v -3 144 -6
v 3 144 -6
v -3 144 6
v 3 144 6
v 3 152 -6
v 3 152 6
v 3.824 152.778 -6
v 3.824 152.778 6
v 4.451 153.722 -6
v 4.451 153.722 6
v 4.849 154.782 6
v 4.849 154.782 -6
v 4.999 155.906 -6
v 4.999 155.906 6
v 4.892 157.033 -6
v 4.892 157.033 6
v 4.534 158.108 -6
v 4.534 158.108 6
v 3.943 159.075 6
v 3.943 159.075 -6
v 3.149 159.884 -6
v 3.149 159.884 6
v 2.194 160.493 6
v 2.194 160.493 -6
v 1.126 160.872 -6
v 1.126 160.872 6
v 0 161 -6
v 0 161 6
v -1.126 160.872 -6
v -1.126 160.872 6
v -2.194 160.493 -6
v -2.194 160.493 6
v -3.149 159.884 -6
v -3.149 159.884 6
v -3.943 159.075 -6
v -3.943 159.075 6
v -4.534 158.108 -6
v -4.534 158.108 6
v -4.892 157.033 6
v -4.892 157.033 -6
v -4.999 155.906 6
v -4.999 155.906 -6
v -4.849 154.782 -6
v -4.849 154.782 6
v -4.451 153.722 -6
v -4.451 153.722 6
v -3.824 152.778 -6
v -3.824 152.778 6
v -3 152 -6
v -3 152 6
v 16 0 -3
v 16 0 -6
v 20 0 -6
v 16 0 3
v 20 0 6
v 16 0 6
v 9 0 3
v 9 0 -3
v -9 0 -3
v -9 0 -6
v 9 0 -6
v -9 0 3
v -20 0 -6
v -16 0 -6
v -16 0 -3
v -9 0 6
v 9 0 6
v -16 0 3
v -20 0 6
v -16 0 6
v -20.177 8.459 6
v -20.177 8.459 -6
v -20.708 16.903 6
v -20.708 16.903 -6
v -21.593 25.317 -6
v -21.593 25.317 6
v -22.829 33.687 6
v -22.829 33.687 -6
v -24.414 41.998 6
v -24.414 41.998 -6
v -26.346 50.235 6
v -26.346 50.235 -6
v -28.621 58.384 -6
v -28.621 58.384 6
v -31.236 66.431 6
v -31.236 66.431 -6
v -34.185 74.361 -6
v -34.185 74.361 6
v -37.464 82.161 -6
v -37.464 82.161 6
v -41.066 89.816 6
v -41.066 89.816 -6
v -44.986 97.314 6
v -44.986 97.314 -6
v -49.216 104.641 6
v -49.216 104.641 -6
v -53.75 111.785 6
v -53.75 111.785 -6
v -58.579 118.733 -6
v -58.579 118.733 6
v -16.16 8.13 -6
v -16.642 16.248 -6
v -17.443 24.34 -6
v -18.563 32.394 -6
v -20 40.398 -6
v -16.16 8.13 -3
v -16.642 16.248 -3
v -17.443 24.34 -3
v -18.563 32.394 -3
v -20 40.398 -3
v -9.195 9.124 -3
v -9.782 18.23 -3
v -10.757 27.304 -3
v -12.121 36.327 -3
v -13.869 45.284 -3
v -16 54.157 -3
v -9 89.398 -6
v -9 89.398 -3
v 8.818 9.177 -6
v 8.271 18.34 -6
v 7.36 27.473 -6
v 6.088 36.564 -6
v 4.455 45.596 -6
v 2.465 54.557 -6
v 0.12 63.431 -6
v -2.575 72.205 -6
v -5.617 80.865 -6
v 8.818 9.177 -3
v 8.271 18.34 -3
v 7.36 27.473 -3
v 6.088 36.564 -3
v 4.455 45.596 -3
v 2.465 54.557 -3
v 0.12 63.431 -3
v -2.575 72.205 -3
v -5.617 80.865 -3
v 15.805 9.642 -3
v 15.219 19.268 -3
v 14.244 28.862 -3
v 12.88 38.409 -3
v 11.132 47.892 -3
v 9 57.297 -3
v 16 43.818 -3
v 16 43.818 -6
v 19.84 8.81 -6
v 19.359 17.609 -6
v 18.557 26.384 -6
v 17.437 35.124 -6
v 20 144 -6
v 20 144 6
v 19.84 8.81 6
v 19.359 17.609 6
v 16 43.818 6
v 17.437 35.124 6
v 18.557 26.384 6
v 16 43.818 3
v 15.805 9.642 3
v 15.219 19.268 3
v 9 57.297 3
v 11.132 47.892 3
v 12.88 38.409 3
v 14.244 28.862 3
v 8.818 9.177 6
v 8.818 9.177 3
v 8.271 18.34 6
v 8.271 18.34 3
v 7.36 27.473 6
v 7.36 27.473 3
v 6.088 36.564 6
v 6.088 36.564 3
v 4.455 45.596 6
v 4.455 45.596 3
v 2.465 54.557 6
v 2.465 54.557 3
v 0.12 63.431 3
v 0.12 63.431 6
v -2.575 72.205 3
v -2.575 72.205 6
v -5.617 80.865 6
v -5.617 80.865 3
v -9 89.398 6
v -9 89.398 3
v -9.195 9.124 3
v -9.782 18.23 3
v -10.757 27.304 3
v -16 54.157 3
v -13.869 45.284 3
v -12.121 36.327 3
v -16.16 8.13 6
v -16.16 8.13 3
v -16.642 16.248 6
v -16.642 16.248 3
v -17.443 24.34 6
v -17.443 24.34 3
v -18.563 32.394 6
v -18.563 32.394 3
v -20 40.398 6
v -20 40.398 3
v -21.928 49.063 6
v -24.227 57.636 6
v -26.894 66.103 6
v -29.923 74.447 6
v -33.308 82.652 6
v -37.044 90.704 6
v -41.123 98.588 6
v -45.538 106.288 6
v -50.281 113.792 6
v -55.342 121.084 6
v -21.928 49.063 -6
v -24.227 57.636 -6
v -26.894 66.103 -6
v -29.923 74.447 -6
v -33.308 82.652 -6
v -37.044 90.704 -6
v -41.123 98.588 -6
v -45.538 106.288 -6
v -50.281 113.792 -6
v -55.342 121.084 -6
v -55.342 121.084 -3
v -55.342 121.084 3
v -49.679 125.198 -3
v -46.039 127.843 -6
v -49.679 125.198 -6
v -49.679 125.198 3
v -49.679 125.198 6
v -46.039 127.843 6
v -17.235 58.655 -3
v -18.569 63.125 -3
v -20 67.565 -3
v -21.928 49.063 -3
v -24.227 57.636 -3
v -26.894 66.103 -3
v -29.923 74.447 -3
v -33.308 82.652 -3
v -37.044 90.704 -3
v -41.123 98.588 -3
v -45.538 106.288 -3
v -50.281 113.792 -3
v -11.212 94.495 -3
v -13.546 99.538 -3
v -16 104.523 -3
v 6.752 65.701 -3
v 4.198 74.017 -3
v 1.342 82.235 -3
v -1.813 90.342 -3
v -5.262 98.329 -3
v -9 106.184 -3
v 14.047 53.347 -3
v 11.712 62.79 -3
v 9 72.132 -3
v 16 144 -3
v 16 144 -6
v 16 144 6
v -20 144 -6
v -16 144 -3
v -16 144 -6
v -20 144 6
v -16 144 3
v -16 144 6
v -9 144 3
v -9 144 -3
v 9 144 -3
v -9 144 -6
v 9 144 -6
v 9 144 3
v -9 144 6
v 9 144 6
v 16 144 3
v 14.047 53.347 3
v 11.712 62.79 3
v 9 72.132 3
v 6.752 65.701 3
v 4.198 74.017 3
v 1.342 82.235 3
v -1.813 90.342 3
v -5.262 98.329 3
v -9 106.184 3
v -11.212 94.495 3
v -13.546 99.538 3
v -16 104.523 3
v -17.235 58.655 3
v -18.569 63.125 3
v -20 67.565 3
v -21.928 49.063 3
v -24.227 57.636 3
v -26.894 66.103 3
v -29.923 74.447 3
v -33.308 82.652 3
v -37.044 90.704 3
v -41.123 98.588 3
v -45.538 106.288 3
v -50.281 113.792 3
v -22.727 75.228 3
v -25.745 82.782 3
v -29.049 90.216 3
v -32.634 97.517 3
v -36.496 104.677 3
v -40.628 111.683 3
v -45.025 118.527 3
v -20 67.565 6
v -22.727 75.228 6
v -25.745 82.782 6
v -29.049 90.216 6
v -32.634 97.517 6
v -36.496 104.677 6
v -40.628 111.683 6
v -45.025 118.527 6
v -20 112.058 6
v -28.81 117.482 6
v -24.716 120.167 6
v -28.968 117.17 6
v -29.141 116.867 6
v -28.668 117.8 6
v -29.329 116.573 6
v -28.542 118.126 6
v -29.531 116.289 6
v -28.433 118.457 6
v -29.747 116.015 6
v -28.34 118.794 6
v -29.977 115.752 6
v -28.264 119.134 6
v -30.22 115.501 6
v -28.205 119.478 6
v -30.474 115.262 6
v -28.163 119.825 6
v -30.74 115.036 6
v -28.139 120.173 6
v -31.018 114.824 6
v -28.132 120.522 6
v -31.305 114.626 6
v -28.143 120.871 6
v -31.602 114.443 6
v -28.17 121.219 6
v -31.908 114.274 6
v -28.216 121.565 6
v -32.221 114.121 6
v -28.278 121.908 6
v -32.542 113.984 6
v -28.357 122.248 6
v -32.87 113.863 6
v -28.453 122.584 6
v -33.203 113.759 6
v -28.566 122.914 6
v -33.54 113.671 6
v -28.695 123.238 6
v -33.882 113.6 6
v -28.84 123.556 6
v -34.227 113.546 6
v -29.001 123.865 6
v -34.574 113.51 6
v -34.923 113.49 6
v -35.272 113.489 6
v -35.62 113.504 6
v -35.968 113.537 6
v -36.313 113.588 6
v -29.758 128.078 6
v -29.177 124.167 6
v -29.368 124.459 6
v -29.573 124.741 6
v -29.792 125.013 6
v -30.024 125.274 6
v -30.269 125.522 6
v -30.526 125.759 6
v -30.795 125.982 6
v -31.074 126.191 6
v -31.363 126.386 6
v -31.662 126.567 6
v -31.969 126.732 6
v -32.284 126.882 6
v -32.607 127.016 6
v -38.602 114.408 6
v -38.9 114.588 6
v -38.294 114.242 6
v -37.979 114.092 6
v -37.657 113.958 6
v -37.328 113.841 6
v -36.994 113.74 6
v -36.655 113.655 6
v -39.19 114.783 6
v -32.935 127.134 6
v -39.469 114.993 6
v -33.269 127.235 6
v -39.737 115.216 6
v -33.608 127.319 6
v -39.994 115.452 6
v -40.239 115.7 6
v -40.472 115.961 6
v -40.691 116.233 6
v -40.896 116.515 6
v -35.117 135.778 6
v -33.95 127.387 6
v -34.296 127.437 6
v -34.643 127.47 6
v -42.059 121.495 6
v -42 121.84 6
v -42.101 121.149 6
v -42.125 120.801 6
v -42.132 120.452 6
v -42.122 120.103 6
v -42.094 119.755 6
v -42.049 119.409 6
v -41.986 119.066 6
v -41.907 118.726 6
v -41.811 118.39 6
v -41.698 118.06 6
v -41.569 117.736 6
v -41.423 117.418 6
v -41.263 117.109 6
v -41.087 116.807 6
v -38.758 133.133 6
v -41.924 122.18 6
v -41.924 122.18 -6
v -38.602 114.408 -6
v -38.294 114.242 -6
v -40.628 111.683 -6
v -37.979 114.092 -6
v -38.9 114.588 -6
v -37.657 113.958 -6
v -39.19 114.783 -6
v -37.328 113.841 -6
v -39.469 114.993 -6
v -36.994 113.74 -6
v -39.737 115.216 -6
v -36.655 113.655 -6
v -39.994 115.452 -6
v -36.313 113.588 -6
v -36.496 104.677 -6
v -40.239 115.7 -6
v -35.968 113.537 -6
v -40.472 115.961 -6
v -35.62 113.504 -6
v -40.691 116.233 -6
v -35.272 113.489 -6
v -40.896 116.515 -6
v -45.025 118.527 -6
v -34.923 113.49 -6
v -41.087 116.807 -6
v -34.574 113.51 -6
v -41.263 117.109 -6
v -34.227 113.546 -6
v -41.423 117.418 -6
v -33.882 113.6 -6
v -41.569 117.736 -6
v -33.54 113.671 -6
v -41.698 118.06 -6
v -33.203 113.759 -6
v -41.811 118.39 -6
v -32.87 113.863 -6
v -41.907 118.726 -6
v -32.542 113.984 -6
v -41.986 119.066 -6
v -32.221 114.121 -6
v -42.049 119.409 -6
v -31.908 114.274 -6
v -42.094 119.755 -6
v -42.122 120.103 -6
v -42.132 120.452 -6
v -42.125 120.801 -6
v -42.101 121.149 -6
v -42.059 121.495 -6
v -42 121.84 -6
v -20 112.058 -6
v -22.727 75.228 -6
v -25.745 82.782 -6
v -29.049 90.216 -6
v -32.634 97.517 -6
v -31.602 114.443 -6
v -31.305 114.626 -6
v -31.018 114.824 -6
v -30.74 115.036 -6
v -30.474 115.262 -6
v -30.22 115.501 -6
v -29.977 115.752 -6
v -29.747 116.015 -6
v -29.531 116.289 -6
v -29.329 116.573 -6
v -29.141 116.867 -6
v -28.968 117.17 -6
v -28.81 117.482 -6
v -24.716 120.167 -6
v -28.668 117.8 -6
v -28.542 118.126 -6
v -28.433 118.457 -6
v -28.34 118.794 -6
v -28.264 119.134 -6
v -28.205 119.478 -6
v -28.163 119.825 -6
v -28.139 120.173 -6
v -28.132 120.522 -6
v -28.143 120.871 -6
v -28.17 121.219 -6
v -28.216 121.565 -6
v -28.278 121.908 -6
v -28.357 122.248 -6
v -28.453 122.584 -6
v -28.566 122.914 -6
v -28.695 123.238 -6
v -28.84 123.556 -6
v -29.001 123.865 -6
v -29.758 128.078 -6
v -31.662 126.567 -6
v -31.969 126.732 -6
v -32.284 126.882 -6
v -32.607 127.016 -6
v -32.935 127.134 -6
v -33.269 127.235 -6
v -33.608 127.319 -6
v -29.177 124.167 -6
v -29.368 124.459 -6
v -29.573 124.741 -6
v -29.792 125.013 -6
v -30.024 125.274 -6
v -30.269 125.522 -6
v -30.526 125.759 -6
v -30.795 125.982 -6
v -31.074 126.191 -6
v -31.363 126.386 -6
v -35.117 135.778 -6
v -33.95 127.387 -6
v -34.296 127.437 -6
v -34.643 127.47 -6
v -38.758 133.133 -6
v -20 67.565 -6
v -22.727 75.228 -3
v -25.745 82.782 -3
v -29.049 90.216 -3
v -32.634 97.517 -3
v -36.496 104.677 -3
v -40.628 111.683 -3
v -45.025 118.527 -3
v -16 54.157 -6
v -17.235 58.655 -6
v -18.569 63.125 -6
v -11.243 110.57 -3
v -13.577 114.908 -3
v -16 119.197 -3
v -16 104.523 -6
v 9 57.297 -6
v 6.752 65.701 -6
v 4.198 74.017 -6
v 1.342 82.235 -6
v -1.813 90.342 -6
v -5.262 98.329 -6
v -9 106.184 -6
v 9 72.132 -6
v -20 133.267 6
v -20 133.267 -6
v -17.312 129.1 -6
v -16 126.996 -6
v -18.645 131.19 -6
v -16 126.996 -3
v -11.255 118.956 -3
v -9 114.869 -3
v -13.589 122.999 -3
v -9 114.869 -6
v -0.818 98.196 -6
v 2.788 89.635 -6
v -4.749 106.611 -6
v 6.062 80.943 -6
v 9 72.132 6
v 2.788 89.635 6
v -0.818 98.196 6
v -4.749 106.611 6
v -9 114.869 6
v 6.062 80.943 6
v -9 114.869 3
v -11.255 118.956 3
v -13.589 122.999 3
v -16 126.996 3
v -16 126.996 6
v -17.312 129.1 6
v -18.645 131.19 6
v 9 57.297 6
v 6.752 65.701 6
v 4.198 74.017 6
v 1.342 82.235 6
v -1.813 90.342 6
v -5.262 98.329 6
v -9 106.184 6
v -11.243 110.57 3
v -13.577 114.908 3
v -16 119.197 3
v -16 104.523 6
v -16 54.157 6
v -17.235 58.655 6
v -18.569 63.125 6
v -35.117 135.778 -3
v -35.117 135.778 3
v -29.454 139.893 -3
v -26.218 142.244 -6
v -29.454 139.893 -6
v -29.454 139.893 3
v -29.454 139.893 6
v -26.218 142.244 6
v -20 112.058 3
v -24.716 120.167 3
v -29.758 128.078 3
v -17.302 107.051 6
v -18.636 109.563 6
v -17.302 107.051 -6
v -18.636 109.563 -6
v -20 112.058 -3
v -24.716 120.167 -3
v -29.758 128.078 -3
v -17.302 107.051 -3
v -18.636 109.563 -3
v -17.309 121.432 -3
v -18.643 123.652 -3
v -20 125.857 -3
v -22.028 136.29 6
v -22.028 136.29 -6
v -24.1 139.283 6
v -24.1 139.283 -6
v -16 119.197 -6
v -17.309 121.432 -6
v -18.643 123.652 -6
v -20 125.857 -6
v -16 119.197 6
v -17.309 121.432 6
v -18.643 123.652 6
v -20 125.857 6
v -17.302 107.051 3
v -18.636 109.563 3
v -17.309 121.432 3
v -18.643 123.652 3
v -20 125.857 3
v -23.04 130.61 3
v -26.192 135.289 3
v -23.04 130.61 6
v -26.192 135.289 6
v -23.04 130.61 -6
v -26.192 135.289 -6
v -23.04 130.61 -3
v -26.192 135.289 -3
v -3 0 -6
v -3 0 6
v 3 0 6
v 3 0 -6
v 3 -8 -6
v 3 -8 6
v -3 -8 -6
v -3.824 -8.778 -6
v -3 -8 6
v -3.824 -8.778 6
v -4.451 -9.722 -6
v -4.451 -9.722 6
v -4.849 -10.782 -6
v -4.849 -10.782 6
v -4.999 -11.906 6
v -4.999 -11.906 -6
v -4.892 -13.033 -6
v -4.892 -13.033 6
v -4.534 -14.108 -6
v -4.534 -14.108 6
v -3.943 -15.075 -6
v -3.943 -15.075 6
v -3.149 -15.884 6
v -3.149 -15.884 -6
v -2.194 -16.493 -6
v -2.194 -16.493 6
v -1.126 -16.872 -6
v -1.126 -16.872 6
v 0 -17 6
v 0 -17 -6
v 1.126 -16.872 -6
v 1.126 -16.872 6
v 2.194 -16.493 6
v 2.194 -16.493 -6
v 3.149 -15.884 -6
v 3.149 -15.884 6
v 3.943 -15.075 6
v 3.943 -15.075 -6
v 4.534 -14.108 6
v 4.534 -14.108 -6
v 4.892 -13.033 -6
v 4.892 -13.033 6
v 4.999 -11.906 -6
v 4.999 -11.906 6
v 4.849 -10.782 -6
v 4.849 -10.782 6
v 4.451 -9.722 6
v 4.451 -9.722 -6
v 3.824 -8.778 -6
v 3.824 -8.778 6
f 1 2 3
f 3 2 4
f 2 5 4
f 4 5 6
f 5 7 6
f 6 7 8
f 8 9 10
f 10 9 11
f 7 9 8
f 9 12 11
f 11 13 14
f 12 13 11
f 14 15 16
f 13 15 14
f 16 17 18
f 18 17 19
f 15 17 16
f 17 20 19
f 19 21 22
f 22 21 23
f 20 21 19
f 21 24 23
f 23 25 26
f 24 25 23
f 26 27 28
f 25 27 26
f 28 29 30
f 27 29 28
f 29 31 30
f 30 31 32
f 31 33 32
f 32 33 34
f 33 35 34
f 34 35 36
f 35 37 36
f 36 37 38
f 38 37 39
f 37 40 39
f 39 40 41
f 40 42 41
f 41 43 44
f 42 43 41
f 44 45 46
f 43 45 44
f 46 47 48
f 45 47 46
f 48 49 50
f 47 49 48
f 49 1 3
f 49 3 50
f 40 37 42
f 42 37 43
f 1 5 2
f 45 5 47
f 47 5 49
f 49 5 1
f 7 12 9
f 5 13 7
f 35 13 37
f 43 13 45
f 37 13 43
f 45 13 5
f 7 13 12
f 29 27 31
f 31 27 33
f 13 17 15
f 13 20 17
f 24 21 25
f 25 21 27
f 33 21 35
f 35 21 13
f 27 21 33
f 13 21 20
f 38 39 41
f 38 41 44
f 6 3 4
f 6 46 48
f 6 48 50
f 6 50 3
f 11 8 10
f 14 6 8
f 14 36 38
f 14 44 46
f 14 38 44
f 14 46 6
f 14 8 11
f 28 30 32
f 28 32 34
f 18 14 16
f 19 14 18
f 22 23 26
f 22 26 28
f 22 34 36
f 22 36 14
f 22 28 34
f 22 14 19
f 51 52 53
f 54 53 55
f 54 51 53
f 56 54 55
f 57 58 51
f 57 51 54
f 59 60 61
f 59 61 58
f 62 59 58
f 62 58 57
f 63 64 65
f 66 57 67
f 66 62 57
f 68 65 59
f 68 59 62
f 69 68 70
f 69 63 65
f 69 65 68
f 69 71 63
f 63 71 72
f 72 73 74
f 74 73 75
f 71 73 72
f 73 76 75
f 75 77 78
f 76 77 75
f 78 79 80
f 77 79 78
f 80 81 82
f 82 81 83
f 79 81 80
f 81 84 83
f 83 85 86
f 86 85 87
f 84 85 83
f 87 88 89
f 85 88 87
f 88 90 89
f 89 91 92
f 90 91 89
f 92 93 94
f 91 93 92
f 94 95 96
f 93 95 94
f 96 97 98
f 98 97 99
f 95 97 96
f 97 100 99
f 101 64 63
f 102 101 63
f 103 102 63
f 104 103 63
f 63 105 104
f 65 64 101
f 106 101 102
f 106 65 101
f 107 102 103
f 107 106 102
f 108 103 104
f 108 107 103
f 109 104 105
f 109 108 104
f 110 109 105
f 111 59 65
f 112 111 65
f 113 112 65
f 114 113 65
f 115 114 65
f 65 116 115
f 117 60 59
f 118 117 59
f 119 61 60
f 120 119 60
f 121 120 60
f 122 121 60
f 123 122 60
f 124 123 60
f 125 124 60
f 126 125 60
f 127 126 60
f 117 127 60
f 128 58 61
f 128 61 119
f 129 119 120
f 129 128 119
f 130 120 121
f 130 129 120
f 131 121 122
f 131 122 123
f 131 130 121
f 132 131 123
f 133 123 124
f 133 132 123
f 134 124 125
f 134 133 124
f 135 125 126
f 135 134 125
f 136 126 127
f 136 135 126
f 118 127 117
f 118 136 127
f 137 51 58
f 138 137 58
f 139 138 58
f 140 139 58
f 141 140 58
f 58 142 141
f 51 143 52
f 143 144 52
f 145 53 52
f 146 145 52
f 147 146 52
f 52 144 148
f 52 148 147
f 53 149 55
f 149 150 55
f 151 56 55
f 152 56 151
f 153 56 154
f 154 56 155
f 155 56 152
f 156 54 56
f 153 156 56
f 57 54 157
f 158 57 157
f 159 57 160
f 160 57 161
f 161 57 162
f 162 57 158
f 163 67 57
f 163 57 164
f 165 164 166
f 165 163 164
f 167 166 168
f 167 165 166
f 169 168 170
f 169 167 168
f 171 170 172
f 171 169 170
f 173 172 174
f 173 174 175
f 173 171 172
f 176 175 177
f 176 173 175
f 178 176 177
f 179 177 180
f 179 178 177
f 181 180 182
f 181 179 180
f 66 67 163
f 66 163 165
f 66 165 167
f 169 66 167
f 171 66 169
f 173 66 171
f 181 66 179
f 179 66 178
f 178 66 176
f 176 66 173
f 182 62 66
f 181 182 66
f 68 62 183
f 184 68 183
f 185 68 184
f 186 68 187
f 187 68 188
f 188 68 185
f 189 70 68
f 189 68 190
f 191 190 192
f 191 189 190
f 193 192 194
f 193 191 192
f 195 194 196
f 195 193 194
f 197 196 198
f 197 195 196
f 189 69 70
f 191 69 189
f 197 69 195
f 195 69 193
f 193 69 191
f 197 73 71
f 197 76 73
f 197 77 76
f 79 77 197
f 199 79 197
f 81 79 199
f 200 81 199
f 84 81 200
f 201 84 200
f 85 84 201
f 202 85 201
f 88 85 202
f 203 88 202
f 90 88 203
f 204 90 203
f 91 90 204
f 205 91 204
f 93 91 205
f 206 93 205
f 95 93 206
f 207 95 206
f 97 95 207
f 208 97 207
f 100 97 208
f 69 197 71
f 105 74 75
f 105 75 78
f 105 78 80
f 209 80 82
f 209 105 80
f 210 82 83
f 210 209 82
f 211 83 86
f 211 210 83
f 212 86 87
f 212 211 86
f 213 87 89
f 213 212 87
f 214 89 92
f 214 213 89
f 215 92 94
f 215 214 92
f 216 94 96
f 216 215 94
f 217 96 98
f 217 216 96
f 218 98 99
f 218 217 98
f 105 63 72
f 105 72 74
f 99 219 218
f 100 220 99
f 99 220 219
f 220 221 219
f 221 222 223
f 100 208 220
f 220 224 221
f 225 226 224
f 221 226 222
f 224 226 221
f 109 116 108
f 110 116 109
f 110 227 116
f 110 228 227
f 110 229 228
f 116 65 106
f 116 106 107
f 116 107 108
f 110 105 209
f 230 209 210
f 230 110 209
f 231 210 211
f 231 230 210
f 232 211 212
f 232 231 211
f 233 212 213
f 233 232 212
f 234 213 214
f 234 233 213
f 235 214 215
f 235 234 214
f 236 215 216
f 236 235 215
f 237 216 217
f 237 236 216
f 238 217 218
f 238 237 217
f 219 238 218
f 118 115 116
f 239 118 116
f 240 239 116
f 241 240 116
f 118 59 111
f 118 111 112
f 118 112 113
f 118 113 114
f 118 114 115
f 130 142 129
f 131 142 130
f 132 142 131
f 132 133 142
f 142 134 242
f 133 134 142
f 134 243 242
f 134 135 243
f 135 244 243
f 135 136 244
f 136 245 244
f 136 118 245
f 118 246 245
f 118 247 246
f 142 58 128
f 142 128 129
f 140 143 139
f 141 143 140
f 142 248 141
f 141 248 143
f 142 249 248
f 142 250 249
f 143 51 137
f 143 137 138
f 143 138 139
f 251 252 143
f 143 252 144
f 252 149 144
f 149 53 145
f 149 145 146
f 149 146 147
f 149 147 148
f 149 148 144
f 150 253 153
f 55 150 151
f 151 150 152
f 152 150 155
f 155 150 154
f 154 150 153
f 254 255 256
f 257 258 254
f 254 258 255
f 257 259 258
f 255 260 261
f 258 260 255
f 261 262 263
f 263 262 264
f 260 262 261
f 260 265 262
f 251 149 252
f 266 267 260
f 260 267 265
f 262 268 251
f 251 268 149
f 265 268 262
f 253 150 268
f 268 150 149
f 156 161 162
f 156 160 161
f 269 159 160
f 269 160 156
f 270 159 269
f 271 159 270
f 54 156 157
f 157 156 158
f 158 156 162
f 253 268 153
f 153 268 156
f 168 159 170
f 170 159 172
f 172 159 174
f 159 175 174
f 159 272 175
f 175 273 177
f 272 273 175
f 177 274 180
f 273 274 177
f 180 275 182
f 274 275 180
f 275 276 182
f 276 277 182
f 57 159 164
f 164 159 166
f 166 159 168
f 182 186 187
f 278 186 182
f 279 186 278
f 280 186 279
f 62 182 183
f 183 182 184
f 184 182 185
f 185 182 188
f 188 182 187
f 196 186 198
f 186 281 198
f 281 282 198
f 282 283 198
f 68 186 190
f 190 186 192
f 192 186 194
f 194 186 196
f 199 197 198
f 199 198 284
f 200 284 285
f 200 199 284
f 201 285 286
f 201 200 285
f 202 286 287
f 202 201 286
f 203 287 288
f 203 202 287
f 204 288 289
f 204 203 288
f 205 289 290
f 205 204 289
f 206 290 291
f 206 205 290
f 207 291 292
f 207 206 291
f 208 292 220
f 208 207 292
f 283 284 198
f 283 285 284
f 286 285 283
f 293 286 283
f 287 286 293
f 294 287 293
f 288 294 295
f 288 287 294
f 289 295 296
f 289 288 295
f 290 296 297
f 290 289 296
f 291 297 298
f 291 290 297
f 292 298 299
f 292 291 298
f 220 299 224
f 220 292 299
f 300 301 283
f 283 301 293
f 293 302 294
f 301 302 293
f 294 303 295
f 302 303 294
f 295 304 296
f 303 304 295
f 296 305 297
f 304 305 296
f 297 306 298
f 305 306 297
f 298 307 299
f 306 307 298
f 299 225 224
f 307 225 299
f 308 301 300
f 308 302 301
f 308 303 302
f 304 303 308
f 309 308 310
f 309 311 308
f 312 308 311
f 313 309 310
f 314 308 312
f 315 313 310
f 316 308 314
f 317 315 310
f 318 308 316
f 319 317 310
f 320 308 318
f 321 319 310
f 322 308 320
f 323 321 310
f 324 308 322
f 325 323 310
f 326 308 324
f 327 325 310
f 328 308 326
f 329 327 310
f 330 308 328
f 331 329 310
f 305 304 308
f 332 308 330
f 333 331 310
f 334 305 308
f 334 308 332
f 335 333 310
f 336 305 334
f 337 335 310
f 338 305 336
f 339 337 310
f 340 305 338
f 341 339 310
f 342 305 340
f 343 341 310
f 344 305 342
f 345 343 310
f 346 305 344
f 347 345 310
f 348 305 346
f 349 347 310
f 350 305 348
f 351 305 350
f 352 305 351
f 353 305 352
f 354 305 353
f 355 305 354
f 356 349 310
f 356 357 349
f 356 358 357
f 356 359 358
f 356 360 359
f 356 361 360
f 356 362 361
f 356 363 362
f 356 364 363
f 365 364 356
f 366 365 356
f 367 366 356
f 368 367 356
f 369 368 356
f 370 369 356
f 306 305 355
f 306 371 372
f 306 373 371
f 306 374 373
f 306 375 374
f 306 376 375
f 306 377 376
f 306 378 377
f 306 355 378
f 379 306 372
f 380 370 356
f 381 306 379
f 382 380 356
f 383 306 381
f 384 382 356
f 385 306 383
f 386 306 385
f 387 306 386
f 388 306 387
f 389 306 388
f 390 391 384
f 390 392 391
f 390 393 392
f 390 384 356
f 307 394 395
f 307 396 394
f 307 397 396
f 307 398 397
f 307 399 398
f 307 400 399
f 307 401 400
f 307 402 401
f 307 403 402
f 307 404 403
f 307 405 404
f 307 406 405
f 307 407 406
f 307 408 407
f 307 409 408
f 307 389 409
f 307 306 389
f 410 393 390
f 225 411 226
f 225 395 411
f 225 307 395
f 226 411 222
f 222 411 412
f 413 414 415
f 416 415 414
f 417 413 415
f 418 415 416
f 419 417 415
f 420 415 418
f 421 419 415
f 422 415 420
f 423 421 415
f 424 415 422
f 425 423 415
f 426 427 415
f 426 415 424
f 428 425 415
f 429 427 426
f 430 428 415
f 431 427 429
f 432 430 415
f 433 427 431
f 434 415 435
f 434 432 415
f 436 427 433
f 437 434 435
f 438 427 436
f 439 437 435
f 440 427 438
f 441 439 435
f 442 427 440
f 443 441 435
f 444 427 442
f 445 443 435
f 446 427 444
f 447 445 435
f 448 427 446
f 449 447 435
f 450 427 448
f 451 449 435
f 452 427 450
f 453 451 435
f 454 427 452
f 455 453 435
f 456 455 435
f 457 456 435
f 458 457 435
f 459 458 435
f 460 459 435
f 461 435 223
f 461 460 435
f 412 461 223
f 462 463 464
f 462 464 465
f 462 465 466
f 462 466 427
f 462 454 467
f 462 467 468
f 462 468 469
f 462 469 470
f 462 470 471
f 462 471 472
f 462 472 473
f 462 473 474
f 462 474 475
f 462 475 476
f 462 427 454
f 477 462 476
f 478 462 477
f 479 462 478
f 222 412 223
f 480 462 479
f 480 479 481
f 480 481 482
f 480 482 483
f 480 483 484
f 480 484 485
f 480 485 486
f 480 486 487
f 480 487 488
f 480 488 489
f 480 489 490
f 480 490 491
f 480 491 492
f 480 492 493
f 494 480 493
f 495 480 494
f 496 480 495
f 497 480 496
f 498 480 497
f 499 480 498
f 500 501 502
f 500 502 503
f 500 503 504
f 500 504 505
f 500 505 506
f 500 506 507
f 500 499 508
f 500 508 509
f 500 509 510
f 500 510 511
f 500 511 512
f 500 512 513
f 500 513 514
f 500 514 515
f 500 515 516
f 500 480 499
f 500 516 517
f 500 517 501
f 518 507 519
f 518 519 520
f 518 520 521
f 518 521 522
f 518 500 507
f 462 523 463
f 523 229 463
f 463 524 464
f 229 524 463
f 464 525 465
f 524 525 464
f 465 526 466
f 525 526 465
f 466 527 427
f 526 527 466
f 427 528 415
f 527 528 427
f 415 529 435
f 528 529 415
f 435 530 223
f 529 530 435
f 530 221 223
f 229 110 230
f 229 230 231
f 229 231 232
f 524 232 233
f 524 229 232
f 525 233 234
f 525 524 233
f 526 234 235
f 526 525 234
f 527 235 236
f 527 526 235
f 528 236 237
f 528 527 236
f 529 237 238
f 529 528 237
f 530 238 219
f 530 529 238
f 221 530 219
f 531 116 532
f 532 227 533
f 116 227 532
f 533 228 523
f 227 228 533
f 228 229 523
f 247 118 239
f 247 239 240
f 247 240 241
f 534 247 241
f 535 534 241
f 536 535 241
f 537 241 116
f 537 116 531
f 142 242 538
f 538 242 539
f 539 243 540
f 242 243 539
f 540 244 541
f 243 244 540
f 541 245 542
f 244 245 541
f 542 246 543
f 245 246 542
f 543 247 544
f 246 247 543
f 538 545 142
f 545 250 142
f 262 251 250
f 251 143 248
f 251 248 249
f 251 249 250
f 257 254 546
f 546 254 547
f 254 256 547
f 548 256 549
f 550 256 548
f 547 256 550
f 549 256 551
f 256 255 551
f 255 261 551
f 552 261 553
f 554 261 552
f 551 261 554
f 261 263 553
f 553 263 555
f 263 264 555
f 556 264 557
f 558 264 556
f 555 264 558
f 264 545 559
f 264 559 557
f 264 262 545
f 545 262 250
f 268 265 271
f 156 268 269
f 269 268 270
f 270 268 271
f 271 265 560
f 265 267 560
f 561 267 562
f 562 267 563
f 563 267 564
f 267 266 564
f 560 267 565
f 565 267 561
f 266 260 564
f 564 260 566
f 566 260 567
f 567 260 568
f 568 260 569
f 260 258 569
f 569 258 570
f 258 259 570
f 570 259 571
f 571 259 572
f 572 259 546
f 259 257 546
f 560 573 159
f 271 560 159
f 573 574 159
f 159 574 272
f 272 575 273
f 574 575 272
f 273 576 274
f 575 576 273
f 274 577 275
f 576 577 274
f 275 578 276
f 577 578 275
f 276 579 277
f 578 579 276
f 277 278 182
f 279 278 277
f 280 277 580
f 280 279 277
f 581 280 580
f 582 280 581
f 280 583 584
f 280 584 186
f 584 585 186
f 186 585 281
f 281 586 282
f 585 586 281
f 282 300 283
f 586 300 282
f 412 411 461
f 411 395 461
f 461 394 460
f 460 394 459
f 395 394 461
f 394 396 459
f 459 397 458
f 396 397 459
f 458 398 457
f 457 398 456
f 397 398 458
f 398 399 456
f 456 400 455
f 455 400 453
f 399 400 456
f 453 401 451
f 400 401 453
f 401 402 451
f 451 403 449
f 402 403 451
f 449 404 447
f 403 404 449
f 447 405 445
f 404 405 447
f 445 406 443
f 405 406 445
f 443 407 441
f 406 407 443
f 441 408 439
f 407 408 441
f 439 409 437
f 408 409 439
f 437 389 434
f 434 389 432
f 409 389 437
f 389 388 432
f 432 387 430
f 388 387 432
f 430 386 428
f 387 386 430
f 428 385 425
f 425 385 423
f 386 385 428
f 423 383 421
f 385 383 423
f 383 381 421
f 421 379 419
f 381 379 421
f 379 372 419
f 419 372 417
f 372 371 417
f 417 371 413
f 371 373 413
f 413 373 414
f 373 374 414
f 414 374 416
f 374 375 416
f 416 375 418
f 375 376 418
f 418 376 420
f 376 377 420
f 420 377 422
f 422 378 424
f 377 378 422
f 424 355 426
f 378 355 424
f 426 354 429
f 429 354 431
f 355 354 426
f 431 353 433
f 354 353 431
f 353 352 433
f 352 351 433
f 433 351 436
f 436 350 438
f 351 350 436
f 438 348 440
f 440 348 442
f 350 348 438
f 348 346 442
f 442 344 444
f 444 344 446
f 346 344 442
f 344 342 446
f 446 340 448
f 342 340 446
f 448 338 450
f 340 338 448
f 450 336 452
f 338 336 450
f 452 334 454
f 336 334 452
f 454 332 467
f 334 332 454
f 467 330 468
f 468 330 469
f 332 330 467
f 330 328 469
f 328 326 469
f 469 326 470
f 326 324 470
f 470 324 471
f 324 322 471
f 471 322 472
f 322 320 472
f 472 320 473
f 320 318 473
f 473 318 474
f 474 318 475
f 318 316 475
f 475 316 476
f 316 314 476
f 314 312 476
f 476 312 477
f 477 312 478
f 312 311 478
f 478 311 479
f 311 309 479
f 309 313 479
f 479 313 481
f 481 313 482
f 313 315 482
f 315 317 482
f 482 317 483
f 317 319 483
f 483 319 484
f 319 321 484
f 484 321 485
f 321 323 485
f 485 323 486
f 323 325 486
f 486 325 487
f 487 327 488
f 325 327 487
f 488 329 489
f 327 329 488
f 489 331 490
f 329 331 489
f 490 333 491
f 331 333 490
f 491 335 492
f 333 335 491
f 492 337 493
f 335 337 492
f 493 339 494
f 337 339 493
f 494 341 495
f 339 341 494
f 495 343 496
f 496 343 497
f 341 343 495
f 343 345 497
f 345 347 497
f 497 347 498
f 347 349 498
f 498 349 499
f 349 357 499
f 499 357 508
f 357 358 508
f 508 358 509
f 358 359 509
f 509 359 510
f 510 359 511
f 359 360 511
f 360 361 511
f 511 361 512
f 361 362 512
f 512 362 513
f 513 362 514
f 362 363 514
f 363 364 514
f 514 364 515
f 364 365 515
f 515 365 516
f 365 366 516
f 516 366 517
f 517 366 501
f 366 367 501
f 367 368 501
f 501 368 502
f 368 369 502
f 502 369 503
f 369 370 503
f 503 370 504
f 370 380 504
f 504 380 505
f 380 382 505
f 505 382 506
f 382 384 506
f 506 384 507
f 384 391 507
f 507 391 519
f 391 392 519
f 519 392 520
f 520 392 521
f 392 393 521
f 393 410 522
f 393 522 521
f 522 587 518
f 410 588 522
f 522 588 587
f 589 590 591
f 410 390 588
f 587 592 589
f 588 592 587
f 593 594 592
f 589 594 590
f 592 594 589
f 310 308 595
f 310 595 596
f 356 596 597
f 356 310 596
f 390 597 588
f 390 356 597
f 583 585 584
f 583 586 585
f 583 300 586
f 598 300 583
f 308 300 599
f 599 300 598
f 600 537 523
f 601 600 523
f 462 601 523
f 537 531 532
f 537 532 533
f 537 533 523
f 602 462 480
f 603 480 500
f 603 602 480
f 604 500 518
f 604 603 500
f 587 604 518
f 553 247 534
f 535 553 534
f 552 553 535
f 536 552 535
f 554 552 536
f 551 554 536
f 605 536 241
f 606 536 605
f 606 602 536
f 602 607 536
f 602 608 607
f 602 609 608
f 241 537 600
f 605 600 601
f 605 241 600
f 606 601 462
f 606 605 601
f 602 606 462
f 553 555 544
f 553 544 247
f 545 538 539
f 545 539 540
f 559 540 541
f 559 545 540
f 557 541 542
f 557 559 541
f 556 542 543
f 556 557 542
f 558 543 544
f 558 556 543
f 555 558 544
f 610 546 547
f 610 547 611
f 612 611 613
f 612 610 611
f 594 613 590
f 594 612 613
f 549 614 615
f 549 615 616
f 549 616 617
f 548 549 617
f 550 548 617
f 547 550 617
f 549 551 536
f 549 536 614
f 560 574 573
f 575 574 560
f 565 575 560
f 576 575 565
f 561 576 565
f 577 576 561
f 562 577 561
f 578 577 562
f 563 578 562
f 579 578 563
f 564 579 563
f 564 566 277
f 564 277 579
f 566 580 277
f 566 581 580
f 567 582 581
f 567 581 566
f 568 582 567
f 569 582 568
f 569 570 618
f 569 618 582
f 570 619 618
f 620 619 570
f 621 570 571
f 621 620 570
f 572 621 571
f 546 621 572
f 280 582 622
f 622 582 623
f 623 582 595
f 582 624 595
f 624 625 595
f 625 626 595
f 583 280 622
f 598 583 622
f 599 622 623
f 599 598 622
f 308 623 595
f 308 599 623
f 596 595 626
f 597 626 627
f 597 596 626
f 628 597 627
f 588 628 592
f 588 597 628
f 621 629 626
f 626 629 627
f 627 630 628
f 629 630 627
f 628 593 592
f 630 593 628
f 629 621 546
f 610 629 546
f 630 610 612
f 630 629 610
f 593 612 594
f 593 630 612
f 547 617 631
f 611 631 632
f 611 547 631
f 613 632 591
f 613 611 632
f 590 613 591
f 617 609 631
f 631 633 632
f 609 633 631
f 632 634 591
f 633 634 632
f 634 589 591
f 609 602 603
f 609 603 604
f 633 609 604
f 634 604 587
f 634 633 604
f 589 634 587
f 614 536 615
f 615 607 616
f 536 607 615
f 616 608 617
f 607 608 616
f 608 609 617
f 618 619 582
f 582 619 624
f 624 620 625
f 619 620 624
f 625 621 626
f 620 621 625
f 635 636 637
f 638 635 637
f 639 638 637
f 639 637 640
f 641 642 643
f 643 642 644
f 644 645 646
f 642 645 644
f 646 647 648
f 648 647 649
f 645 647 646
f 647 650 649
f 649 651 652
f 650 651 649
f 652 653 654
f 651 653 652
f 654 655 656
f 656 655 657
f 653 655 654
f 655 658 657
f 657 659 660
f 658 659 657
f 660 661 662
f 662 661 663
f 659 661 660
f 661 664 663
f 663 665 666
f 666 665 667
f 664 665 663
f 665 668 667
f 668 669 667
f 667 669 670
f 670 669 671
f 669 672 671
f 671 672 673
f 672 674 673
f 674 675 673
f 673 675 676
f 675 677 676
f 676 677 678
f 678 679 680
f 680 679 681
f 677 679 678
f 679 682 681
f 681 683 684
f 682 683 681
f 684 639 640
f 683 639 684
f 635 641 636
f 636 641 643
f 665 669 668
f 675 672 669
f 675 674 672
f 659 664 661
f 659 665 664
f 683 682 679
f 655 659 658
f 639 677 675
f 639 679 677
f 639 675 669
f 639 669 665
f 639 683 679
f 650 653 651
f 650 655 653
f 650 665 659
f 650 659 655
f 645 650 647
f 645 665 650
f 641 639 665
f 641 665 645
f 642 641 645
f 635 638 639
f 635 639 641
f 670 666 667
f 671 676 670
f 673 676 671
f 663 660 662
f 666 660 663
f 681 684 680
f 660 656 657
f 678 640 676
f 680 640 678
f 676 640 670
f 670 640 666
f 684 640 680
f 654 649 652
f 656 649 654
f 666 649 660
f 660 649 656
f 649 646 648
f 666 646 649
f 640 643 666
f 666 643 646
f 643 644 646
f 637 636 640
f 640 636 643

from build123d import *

# Parameters (mm, degrees)
SKETCH004_W       = 7
SKETCH004_H       = 3
SKETCH005_W       = 7
SKETCH005_H       = 3
SKETCH009_W       = 7
SKETCH009_H       = 3
SKETCH010_W       = 7
SKETCH010_H       = 3
POCKET_DEPTH      = 6.001
POCKET_DEPTH_BACK = -6.001
PAD_DEPTH         = 6
PAD001_DEPTH      = 6


with BuildPart() as body:
    # AdditivePipe: sweep along a path in Sketch002
    with BuildLine(Plane.XY) as additivepipe_path:
        ThreePointArc((0, 0), (-10.865453, 68.601773), (-42.398227, 130.488326))
    # Sketch → AdditivePipe (sweep)
    with BuildSketch(Plane.XZ):
        Polygon((-20, 6), (-20, -6), (-16, -6), (-16, -3), (-9, -3), (-9, -6), (9, -6), (9, -3), (16, -3), (16, -6), (20, -6), (20, 6), (16, 6), (16, 3), (9, 3), (9, 6), (-9, 6), (-9, 3), (-16, 3), (-16, 6), align=None)
    sweep(path=additivepipe_path.line)

    # AdditivePipe001: sweep along a path in Sketch001
    with BuildLine(Plane.XY) as additivepipe001_path:
        Line((0, 0), (0, 144))
    # Sketch → AdditivePipe001 (sweep)
    with BuildSketch(Plane.XZ):
        Polygon((-20, 6), (-20, -6), (-16, -6), (-16, -3), (-9, -3), (-9, -6), (9, -6), (9, -3), (16, -3), (16, -6), (20, -6), (20, 6), (16, 6), (16, 3), (9, 3), (9, 6), (-9, 6), (-9, 3), (-16, 3), (-16, 6), align=None)
    sweep(path=additivepipe001_path.line)

    # SubtractivePipe: sweep along a path in Sketch001
    with BuildLine(Plane.XY) as subtractivepipe_path:
        Line((0, 0), (0, 144))
    # Sketch004 → SubtractivePipe (sweep, cut)
    with BuildSketch(Plane.XZ):
        with Locations((-12.5, 4.5)):
            Rectangle(SKETCH004_W, SKETCH004_H)
    sweep(path=subtractivepipe_path.line, mode=Mode.SUBTRACT)

    # SubtractivePipe001: sweep along a path in Sketch002
    with BuildLine(Plane.XY) as subtractivepipe001_path:
        ThreePointArc((0, 0), (-10.865453, 68.601773), (-42.398227, 130.488326))
    # Sketch004 → SubtractivePipe001 (sweep, cut)
    with BuildSketch(Plane.XZ):
        with Locations((-12.5, 4.5)):
            Rectangle(SKETCH004_W, SKETCH004_H)
    sweep(path=subtractivepipe001_path.line, mode=Mode.SUBTRACT)

    # SubtractivePipe002: sweep along a path in Sketch002
    with BuildLine(Plane.XY) as subtractivepipe002_path:
        ThreePointArc((0, 0), (-10.865453, 68.601773), (-42.398227, 130.488326))
    # Sketch005 (on Face1 of SubtractivePipe001) → SubtractivePipe002 (sweep, cut)
    with BuildSketch(Plane.XZ):
        with Locations((12.5, 4.5)):
            Rectangle(SKETCH005_W, SKETCH005_H)
    sweep(path=subtractivepipe002_path.line, mode=Mode.SUBTRACT)

    # SubtractivePipe003: sweep along a path in Sketch001
    with BuildLine(Plane.XY) as subtractivepipe003_path:
        Line((0, 0), (0, 144))
    # Sketch005 (on Face1 of SubtractivePipe001) → SubtractivePipe003 (sweep, cut)
    with BuildSketch(Plane.XZ):
        with Locations((12.5, 4.5)):
            Rectangle(SKETCH005_W, SKETCH005_H)
    subtractivepipe003 = sweep(path=subtractivepipe003_path.line, mode=Mode.SUBTRACT)

    # Mirrored: SubtractivePipe003 across XY
    add(subtractivepipe003.mirror(Plane.XY), mode=Mode.SUBTRACT)

    # SubtractivePipe004: sweep along a path in Sketch002
    with BuildLine(Plane.XY) as subtractivepipe004_path:
        ThreePointArc((0, 0), (-10.865453, 68.601773), (-42.398227, 130.488326))
    # Sketch009 → SubtractivePipe004 (sweep, cut)
    with BuildSketch(Plane.XZ):
        with Locations((-12.5, -4.5)):
            Rectangle(SKETCH009_W, SKETCH009_H)
    sweep(path=subtractivepipe004_path.line, mode=Mode.SUBTRACT)

    # SubtractivePipe005: sweep along a path in Sketch001
    with BuildLine(Plane.XY) as subtractivepipe005_path:
        Line((0, 0), (0, 144))
    # Sketch009 → SubtractivePipe005 (sweep, cut)
    with BuildSketch(Plane.XZ):
        with Locations((-12.5, -4.5)):
            Rectangle(SKETCH009_W, SKETCH009_H)
    sweep(path=subtractivepipe005_path.line, mode=Mode.SUBTRACT)

    # SubtractivePipe006: sweep along a path in Sketch002
    with BuildLine(Plane.XY) as subtractivepipe006_path:
        ThreePointArc((0, 0), (-10.865453, 68.601773), (-42.398227, 130.488326))
    # Sketch010 (on Face1 of SubtractivePipe005) → SubtractivePipe006 (sweep, cut)
    with BuildSketch(Plane.XZ):
        with Locations((12.5, -4.5)):
            Rectangle(SKETCH010_W, SKETCH010_H)
    sweep(path=subtractivepipe006_path.line, mode=Mode.SUBTRACT)

    # Sketch012 → Pocket (cut, two sides)
    with BuildSketch(Plane.XY) as pocket_sk:
        with BuildLine():
            Line((-46.038804, 127.843292), (-38.757651, 133.13336))
            Line((-38.757651, 133.13336), (-34.643154, 127.470241))
            ThreePointArc((-41.924307, 122.180173), (-31.017586, 114.824218), (-34.643154, 127.470241))
            Line((-46.038804, 127.843292), (-41.924307, 122.180173))
        make_face()
    extrude(amount=-POCKET_DEPTH, mode=Mode.SUBTRACT)
    extrude(pocket_sk.sketch, amount=-POCKET_DEPTH_BACK, mode=Mode.SUBTRACT)


with BuildPart() as body001:
    # Sketch008 → Pad (new body, symmetric)
    with BuildSketch(Plane.XY):
        with BuildLine():
            Line((-3, 0), (3, 0))
            Line((3, 0), (3, -8))
            ThreePointArc((-3, -8), (0, -17), (3, -8))
            Line((-3, 0), (-3, -8))
        make_face()
    extrude(amount=PAD_DEPTH, both=True)


with BuildPart() as body002:
    # Sketch011 → Pad001 (new body, symmetric)
    with BuildSketch(Plane.XY):
        with BuildLine():
            Line((-3, 144), (3, 144))
            Line((3, 144), (3, 152))
            ThreePointArc((3, 152), (0, 161), (-3, 152))
            Line((-3, 144), (-3, 152))
        make_face()
    extrude(amount=PAD001_DEPTH, both=True)


solid = Compound([body.part, body001.part, body002.part])
